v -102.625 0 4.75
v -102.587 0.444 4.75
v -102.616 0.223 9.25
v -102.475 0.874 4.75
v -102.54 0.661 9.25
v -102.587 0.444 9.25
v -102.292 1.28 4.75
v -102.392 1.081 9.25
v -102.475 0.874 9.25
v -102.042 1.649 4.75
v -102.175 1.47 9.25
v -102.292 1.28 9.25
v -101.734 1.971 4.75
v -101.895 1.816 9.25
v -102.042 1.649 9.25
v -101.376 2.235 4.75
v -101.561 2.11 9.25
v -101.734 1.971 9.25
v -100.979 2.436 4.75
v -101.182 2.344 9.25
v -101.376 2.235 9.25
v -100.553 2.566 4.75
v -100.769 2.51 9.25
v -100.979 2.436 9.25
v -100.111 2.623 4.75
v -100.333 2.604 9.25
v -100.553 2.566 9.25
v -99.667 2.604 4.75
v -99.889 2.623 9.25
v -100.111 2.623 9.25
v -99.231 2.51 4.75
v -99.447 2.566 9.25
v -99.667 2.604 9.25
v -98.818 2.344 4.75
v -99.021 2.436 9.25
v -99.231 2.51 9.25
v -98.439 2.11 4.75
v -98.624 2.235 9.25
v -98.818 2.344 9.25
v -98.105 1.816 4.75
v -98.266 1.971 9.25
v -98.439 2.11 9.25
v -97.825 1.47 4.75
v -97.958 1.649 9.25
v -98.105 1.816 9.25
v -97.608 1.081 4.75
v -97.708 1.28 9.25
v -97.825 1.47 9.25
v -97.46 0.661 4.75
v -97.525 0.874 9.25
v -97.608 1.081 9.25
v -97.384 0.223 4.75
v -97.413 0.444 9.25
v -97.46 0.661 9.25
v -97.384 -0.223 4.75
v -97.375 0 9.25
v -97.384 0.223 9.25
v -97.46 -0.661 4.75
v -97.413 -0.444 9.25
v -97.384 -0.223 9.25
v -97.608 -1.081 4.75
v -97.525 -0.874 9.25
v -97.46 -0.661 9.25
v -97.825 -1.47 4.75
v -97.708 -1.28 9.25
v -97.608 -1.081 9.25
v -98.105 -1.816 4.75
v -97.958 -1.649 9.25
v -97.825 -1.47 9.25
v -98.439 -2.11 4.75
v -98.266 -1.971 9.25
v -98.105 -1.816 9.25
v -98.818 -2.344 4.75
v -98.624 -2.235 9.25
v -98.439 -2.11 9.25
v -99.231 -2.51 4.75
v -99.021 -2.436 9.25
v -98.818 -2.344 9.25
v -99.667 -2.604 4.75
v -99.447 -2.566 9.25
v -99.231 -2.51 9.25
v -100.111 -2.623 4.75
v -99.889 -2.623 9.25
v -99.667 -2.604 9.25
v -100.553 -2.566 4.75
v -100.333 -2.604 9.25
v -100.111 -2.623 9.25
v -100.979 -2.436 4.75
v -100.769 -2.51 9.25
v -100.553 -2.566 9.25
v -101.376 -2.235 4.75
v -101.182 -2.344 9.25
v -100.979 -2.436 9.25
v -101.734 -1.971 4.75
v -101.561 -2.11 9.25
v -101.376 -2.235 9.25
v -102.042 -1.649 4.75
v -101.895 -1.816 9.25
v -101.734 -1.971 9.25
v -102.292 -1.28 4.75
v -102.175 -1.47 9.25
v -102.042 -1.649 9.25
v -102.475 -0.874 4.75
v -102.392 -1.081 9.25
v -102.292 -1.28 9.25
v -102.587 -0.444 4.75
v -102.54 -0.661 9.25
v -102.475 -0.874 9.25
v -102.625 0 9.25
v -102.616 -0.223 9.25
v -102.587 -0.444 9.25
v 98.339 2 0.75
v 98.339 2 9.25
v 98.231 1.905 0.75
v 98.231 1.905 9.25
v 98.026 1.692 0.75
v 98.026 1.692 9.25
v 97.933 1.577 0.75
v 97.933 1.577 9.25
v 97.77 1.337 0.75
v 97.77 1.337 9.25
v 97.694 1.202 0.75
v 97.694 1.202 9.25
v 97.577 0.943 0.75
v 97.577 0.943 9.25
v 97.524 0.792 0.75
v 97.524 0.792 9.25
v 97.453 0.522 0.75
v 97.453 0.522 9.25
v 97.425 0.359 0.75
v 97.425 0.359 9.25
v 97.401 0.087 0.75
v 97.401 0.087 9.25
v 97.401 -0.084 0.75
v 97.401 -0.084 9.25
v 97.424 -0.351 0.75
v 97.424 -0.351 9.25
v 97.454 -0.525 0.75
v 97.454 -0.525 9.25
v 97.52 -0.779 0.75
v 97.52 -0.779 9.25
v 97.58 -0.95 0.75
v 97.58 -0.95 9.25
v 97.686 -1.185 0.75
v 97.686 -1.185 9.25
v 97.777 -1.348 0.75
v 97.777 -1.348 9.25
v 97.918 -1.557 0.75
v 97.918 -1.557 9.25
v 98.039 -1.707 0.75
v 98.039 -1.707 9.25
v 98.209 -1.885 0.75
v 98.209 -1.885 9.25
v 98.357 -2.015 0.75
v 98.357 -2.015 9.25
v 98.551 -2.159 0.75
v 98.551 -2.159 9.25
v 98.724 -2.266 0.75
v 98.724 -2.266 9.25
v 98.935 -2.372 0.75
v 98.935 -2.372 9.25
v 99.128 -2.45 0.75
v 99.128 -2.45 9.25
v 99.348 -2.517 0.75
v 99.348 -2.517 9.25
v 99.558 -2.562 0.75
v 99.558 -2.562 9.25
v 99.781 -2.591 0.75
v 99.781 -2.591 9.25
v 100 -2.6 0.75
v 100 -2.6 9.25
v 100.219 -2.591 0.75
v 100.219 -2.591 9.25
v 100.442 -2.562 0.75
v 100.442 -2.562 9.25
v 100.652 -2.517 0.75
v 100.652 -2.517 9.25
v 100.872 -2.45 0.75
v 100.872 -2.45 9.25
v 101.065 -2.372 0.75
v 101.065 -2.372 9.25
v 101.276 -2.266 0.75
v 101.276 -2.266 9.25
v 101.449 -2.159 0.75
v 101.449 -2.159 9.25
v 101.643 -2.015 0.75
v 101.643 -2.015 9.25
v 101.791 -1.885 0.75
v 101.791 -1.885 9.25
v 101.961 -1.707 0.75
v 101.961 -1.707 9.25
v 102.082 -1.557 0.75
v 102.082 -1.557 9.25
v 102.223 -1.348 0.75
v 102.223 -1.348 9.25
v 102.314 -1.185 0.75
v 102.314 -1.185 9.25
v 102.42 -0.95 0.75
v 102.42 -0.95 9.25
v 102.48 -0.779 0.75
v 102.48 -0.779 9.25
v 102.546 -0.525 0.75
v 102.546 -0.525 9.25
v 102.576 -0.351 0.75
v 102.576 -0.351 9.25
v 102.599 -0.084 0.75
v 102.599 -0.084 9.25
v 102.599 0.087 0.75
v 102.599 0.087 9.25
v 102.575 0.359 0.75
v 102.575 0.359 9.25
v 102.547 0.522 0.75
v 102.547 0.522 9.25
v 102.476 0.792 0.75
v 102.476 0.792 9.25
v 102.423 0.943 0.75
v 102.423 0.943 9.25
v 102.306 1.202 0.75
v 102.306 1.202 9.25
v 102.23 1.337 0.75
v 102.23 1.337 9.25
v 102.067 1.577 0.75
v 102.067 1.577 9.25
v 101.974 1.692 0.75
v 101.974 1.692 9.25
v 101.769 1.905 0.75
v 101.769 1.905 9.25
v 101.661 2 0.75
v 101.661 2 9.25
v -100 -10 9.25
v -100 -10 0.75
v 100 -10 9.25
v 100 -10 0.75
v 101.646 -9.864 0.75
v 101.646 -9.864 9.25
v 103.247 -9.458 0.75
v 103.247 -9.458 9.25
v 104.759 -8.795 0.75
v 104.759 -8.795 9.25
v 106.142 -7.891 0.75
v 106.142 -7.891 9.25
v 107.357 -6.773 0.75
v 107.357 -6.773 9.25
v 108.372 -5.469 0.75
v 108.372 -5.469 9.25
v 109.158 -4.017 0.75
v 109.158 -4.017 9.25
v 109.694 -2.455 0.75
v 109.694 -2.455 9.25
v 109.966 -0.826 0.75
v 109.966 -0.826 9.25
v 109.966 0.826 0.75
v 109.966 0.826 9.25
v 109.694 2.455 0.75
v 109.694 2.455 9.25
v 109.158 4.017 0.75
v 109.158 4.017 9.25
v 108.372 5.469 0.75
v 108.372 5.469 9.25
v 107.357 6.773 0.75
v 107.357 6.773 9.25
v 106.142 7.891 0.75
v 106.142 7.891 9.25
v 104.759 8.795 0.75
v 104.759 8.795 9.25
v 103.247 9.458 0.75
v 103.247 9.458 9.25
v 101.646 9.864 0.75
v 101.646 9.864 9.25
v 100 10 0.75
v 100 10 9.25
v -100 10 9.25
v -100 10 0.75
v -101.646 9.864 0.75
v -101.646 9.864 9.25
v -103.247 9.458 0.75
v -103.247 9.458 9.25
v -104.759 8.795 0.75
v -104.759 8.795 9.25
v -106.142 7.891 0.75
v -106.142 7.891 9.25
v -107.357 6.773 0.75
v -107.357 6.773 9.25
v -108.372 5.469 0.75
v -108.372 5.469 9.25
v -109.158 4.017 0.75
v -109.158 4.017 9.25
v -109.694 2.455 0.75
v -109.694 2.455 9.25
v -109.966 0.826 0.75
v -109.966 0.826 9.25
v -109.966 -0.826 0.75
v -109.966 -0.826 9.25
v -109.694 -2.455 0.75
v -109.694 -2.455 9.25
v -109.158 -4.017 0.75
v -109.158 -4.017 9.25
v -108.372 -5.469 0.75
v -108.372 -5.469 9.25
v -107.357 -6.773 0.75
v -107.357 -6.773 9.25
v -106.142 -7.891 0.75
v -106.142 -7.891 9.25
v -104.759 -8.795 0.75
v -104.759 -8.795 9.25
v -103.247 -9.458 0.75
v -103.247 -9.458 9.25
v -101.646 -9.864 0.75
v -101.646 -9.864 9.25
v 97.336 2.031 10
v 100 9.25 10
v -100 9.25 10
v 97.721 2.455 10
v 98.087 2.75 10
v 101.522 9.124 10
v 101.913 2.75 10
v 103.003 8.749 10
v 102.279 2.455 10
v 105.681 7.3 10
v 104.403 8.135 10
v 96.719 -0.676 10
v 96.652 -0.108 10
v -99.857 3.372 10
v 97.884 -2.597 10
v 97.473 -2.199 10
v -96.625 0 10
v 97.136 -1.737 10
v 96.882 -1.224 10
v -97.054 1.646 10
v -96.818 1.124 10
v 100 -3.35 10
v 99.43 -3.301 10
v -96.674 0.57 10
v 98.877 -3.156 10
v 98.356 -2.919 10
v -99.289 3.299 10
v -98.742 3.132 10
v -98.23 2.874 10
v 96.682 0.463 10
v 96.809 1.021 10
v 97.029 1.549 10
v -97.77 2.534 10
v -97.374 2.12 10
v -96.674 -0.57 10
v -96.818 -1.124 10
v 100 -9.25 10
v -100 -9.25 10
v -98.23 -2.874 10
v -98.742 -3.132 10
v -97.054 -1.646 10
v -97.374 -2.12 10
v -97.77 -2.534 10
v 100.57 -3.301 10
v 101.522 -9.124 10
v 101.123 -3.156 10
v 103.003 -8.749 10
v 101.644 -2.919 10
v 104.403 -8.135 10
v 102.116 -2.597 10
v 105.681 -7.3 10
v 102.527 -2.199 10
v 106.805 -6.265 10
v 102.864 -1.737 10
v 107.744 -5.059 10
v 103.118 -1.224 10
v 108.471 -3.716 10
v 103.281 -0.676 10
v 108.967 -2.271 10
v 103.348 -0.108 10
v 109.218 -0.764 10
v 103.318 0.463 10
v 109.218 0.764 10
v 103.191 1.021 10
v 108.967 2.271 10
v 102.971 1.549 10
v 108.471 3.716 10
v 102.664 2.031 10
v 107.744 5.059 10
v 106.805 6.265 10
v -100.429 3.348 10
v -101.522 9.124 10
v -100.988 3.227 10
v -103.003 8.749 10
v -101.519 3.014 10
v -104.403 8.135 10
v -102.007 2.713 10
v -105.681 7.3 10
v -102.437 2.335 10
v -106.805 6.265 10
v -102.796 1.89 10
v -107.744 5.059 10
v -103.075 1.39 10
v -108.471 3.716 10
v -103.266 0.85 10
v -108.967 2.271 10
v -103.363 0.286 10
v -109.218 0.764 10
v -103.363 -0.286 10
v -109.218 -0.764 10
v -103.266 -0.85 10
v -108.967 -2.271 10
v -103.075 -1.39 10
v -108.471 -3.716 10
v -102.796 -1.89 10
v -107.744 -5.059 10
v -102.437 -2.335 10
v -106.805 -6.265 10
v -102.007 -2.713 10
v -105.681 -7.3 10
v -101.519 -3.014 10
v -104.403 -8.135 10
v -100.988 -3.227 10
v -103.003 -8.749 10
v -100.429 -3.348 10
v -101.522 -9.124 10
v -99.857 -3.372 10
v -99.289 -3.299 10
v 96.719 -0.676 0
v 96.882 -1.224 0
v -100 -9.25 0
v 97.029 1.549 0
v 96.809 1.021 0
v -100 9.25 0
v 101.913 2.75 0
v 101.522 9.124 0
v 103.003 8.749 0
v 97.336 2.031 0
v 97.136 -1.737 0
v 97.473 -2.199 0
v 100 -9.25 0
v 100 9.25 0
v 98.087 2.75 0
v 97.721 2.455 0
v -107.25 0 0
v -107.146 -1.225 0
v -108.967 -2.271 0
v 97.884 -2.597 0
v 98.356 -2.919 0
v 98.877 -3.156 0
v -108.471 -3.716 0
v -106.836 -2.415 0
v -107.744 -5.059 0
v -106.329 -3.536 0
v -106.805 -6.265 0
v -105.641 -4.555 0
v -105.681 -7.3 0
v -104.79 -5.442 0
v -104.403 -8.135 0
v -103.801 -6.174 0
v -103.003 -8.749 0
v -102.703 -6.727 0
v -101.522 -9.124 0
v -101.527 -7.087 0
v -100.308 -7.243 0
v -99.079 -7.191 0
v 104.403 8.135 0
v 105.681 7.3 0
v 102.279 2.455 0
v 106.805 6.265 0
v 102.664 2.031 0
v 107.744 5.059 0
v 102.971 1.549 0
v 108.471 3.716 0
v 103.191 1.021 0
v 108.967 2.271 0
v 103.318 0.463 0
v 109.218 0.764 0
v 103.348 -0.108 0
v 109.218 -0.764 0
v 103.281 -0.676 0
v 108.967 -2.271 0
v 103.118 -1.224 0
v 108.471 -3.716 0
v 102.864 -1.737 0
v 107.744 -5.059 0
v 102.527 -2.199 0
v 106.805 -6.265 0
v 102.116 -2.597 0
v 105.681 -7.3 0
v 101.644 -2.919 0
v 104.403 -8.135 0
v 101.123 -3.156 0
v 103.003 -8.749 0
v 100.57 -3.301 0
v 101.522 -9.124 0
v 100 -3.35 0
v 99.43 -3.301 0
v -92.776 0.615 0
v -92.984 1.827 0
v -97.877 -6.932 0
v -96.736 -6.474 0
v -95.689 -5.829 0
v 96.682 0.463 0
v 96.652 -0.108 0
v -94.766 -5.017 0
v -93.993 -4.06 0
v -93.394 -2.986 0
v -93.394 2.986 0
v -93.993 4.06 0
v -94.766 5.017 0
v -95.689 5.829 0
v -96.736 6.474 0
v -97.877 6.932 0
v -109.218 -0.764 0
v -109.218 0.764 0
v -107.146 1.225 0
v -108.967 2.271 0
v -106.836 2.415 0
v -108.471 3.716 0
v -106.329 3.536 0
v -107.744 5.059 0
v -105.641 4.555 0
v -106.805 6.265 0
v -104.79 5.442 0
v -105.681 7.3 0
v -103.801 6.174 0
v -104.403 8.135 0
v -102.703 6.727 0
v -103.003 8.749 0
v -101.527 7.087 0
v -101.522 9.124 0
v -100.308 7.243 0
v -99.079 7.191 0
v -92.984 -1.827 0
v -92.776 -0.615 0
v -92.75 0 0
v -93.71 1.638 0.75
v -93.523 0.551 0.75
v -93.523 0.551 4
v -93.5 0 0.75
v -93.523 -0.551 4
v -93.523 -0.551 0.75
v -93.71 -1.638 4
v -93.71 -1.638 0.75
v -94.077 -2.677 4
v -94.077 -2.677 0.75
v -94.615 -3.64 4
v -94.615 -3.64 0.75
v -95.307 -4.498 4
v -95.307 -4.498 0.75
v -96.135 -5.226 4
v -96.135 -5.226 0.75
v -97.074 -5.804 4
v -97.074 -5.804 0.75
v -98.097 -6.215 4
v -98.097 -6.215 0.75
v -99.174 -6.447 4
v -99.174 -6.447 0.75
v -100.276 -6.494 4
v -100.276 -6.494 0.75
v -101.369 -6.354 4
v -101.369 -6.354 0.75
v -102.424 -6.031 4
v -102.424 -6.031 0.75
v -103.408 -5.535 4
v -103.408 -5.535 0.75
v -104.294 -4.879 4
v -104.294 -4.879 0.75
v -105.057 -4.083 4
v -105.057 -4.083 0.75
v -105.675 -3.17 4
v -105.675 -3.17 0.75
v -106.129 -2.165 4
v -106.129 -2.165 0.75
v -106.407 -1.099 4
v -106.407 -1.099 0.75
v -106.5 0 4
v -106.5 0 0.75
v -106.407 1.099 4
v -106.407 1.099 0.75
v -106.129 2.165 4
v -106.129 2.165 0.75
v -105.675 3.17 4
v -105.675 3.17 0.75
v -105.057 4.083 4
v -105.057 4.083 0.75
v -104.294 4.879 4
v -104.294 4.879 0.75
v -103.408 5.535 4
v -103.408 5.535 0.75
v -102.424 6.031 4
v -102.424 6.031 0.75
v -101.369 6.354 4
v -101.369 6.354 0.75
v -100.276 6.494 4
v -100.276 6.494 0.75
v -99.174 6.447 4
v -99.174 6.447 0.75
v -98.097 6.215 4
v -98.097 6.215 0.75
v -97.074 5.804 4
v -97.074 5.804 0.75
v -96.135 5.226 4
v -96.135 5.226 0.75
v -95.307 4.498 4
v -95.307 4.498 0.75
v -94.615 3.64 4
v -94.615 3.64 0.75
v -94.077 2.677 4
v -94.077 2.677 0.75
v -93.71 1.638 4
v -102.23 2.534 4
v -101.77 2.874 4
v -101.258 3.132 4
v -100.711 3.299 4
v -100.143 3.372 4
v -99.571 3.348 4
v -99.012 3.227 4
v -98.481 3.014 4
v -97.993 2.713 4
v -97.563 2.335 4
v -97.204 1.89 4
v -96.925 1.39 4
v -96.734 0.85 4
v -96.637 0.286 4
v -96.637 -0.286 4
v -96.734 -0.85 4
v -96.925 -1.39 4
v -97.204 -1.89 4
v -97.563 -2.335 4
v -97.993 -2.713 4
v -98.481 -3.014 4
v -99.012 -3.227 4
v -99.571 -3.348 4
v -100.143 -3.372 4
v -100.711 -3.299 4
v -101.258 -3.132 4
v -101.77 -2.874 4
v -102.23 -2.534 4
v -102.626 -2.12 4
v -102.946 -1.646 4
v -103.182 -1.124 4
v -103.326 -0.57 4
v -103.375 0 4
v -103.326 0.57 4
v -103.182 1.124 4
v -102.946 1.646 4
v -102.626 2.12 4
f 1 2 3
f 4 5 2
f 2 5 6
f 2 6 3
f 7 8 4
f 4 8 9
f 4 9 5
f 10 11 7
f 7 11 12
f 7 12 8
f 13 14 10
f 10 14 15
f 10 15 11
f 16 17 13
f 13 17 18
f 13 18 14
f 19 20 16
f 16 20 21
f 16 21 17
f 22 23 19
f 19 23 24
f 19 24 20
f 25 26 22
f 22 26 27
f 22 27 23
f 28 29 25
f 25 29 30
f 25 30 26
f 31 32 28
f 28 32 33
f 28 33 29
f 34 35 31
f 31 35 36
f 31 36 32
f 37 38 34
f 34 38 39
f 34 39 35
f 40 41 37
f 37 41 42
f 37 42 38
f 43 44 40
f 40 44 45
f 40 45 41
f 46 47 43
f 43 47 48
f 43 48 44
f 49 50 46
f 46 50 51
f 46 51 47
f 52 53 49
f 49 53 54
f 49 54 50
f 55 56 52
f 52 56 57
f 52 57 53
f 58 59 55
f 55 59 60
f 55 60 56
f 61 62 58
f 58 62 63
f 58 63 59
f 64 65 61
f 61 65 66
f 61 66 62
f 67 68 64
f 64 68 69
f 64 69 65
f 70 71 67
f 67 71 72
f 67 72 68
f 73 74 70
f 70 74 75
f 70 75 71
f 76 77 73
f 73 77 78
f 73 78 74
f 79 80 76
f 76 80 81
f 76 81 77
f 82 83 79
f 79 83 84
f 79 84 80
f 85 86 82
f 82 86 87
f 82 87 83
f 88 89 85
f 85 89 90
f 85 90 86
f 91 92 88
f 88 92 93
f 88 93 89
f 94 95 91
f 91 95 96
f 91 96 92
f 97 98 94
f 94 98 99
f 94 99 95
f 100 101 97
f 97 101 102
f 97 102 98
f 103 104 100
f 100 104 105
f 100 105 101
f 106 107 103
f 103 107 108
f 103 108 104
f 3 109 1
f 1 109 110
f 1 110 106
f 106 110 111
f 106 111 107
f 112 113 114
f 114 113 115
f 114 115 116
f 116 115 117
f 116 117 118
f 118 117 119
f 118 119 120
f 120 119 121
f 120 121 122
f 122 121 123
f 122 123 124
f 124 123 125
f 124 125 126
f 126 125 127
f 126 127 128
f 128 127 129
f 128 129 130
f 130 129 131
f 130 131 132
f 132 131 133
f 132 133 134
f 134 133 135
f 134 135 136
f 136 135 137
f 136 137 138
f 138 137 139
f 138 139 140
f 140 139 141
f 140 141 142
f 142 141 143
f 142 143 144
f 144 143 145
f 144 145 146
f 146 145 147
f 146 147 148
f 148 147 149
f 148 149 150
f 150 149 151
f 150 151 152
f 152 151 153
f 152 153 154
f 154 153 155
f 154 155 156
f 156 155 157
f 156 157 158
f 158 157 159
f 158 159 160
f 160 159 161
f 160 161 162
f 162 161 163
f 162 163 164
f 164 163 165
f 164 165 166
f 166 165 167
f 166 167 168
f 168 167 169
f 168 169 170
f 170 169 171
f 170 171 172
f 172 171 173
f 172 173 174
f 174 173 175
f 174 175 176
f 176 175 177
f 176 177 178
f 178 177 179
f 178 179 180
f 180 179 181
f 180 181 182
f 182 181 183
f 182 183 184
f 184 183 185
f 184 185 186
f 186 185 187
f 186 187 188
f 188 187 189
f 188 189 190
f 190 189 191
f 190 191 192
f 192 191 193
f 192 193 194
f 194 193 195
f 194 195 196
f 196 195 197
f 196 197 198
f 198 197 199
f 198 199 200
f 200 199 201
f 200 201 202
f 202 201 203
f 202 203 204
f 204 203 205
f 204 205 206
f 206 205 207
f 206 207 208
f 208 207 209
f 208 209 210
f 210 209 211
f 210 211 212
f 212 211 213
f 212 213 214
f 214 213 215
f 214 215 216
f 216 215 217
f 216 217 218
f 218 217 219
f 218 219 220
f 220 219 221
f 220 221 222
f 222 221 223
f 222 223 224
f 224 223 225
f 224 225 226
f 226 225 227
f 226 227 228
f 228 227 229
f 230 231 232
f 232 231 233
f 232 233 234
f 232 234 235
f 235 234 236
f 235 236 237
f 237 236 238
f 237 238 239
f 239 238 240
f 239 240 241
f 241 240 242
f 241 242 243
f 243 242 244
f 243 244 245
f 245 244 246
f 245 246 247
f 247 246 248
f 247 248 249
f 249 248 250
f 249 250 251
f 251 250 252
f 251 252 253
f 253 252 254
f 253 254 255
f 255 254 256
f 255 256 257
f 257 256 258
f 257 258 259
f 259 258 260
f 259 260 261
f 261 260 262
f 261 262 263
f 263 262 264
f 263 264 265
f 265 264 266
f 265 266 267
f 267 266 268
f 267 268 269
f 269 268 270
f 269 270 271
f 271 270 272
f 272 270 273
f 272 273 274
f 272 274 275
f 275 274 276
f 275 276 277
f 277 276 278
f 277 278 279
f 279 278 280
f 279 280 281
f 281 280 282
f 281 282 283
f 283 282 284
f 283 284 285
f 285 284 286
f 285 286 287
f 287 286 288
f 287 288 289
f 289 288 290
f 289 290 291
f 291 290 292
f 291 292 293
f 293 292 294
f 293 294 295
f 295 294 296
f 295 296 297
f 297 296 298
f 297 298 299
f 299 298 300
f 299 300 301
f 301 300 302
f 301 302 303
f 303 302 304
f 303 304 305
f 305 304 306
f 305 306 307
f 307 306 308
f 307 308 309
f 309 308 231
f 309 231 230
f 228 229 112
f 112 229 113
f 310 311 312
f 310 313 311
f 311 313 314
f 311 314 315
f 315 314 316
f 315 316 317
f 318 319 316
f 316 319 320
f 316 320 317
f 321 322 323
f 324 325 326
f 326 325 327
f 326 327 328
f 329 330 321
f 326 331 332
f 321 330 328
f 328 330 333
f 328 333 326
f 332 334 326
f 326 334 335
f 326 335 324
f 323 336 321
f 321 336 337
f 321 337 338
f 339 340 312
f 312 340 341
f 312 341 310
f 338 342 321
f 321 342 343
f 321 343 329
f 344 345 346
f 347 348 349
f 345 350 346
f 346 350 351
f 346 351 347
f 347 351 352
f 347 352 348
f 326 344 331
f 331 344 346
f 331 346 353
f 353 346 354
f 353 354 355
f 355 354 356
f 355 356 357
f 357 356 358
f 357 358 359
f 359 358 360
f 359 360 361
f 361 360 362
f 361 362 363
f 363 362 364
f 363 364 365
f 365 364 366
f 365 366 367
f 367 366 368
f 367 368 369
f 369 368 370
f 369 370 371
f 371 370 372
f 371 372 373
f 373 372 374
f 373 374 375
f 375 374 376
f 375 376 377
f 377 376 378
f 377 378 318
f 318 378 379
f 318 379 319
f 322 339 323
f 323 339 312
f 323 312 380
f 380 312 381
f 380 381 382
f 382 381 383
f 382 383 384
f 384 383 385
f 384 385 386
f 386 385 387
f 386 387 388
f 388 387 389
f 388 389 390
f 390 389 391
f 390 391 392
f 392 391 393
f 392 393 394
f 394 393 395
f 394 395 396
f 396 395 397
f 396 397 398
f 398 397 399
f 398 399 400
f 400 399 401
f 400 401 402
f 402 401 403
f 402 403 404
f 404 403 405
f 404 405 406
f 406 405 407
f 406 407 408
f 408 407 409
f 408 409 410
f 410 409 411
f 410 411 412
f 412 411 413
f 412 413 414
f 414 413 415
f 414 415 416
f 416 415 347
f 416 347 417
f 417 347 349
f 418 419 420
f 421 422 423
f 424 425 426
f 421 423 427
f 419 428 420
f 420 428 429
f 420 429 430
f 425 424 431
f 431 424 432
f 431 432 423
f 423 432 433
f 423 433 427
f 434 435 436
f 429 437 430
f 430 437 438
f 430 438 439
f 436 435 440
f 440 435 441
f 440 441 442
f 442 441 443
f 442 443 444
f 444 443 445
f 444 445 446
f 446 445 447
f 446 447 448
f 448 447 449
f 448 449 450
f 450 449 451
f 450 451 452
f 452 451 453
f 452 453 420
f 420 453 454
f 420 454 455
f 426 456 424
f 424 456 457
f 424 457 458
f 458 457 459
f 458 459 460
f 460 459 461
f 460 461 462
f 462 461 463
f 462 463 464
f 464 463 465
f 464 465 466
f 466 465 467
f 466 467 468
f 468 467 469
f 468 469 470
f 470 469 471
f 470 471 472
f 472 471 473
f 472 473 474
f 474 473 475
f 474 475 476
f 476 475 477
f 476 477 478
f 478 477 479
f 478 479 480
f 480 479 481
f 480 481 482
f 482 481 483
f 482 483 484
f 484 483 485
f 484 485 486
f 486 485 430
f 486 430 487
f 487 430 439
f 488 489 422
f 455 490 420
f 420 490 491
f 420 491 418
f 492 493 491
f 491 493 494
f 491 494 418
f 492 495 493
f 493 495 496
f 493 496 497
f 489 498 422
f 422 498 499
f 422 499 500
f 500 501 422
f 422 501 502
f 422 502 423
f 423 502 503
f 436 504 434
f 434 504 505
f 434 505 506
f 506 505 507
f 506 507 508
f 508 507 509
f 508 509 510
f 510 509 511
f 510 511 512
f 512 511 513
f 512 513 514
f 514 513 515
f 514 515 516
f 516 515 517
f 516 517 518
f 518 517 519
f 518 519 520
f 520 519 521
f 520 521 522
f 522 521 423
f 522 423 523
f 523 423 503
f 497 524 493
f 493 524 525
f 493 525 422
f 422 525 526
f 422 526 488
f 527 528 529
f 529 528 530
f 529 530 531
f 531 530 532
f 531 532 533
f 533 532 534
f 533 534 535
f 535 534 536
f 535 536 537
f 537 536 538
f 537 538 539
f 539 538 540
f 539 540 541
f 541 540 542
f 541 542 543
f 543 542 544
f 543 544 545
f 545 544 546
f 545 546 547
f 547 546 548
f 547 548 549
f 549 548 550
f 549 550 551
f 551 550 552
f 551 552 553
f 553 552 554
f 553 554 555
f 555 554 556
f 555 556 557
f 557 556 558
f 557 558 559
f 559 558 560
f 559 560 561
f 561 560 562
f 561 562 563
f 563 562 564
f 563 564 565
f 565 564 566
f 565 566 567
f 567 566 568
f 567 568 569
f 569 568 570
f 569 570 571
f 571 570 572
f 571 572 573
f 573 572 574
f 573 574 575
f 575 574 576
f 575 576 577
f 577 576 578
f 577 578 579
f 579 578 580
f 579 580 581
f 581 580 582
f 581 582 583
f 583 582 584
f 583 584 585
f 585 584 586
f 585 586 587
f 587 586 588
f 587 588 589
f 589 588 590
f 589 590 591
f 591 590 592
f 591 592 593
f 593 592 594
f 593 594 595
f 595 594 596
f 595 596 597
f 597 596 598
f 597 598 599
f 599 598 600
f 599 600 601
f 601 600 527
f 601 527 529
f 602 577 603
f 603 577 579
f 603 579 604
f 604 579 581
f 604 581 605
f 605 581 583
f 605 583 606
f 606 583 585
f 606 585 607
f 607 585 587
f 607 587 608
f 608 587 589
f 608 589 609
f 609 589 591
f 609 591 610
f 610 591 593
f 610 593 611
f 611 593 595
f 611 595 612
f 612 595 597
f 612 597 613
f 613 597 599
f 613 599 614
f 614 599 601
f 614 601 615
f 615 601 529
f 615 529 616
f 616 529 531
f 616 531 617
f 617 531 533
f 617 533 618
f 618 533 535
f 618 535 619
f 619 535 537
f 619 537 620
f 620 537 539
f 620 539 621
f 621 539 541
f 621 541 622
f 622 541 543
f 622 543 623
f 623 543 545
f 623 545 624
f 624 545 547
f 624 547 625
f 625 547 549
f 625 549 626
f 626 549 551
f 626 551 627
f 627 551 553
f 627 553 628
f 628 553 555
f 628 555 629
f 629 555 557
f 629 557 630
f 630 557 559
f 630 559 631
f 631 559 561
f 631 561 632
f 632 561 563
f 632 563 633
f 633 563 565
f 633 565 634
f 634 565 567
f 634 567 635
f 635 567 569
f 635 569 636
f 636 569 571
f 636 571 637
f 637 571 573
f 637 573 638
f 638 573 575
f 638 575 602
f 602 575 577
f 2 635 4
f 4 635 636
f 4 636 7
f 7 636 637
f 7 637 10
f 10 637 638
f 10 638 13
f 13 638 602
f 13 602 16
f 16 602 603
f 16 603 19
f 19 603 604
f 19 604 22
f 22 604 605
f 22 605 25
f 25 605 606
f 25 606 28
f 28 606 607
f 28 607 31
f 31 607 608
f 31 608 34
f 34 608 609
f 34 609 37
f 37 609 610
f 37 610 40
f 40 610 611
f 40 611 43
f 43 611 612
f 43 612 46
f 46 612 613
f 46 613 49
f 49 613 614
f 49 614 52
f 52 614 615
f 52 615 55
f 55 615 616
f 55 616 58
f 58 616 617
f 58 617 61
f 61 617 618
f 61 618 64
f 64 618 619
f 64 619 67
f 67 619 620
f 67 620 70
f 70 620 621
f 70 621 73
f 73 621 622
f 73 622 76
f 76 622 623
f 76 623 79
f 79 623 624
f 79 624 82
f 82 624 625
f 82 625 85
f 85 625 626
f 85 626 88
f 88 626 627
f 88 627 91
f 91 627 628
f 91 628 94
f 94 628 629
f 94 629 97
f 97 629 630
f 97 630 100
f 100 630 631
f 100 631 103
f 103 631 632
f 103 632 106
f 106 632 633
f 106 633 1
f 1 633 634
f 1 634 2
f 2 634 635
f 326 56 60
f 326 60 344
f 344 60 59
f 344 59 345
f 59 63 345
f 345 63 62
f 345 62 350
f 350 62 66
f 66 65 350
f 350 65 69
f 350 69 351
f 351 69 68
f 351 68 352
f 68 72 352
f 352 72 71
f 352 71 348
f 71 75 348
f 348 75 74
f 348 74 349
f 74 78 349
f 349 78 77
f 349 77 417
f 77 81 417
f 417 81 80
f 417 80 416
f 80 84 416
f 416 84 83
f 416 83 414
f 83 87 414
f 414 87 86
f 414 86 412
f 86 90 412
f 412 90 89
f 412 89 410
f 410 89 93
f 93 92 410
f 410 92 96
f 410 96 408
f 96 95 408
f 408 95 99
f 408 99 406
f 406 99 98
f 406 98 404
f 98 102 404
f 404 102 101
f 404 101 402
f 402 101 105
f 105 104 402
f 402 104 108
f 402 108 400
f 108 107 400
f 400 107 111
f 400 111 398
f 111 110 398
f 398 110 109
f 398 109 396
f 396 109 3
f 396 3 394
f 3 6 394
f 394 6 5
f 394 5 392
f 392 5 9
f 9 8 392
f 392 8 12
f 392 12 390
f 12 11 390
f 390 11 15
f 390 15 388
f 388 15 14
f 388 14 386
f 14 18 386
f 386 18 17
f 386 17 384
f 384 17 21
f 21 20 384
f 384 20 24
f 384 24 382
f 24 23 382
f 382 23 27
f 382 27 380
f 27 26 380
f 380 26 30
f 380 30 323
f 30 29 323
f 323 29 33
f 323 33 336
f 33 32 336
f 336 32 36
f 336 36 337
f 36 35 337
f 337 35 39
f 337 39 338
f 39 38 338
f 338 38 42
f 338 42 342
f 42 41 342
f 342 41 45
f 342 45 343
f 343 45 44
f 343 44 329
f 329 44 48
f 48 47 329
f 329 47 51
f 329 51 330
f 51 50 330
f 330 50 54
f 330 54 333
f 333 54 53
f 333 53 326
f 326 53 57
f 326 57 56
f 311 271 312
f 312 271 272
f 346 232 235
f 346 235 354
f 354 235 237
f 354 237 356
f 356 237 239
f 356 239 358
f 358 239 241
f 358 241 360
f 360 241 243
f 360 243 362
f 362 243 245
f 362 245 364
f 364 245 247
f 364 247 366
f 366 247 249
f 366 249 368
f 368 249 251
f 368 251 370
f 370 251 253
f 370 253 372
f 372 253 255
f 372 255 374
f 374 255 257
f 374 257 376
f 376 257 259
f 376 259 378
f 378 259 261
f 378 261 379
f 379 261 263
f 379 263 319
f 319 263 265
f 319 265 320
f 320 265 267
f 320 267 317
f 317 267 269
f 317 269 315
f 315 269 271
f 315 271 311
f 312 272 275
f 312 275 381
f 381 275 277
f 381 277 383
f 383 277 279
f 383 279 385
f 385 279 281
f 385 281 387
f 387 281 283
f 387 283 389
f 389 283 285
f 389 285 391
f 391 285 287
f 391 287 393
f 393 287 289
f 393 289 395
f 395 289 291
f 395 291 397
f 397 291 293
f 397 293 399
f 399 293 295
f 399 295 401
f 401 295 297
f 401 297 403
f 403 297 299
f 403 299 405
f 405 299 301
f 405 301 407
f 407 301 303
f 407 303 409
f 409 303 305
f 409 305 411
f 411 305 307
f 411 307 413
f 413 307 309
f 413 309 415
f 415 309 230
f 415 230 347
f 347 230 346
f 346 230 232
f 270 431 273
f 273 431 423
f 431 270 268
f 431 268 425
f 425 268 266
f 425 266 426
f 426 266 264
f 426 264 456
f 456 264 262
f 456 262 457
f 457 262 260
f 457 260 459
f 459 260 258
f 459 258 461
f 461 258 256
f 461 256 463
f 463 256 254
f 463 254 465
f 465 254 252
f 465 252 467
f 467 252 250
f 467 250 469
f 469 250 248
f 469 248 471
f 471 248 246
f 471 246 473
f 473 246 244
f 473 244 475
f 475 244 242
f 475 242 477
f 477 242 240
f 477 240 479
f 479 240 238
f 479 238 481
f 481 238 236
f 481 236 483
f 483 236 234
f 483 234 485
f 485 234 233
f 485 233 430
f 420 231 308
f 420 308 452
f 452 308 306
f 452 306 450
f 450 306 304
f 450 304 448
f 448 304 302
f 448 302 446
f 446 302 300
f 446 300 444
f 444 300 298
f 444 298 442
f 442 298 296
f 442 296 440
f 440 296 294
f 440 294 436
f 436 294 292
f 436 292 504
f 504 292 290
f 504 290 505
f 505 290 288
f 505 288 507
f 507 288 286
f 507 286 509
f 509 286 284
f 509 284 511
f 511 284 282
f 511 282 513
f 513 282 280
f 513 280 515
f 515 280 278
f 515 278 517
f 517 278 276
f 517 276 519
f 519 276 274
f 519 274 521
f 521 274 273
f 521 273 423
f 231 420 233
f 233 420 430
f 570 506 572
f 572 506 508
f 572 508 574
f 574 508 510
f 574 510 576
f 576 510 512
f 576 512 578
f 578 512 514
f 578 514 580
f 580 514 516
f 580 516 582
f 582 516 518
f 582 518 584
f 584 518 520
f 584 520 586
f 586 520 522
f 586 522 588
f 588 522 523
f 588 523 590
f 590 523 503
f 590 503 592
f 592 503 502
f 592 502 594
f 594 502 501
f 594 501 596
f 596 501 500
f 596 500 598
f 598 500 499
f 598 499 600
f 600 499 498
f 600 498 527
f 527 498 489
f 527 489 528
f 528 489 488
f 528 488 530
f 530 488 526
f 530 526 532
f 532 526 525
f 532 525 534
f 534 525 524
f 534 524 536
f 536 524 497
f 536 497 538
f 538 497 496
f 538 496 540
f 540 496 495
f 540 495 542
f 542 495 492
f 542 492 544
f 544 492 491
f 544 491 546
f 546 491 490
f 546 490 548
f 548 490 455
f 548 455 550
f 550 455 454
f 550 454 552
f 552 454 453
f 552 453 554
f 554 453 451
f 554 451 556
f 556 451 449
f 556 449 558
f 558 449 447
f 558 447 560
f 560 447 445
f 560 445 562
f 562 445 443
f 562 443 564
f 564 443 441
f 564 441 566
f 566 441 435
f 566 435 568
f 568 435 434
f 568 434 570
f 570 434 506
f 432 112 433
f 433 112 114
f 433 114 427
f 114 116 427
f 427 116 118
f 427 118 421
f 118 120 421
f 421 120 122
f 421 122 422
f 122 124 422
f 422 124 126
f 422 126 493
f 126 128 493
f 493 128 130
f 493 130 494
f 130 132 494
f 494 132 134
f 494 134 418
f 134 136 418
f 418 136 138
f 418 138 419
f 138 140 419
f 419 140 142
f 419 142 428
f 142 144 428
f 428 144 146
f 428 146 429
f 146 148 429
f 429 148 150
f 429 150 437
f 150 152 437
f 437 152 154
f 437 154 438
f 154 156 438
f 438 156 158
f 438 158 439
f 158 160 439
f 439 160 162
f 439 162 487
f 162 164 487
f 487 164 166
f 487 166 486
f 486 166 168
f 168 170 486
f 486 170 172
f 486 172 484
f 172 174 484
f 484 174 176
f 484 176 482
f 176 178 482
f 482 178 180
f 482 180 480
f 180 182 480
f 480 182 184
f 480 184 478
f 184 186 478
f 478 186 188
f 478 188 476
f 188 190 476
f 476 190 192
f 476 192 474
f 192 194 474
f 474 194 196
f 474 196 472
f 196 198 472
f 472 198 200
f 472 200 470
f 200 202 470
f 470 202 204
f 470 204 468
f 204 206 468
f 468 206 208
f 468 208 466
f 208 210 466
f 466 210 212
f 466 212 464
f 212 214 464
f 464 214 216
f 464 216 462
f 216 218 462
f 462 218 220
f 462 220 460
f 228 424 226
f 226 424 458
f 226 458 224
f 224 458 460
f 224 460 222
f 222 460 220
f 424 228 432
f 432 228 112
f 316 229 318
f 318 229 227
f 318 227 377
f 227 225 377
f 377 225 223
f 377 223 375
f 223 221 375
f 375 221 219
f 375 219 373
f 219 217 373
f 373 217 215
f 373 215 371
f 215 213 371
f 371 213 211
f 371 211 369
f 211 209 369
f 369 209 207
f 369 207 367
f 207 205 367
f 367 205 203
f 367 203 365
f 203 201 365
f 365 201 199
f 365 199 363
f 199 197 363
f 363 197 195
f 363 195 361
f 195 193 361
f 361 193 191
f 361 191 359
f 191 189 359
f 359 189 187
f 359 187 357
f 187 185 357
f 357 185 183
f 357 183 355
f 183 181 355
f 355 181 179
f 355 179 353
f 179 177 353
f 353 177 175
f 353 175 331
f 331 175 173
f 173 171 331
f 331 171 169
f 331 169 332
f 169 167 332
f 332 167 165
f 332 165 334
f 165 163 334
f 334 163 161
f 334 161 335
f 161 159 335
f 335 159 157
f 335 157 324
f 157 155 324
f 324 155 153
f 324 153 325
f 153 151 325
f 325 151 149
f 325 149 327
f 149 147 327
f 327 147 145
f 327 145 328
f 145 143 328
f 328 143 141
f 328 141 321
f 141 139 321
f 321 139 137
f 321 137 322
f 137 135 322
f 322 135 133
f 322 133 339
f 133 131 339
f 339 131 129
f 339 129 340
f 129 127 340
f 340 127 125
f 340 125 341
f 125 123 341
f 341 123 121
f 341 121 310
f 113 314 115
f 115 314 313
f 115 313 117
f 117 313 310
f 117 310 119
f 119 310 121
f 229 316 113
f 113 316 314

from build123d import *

# Parameters (mm, degrees)
SKETCH1_R           = 2.625
BOSS_EXTRUDE1_DEPTH = 10
SKETCH2_R           = 6.5
CUT_EXTRUDE1_DEPTH  = 4
CHAMFER1_SIZE       = 0.75


with BuildPart() as part:
    # Sketch1 → Boss-Extrude1 (new body)
    with BuildSketch(Plane.XY):
        with BuildLine():
            Line((100, 10), (-100, 10))
            ThreePointArc((-100, 10), (-110, 0), (-100, -10))
            Line((-100, -10), (100, -10))
            ThreePointArc((100, -10), (110, 0), (100, 10))
        make_face()
        with Locations((-100, 0)):
            Circle(SKETCH1_R, mode=Mode.SUBTRACT)
        with BuildLine():
            Line((98.338675227, 2), (101.661324773, 2))
            ThreePointArc((101.661324773, 2), (100, -2.6), (98.338675227, 2))
        make_face(mode=Mode.SUBTRACT)
    extrude(amount=BOSS_EXTRUDE1_DEPTH)

    # Sketch2 → Cut-Extrude1 (cut)
    with BuildSketch(Plane(origin=(0, 0, 0), x_dir=(-1, 0, 0), z_dir=(0, 0, -1))):
        with Locations((100, 0)):
            Circle(SKETCH2_R)
    extrude(amount=-CUT_EXTRUDE1_DEPTH, mode=Mode.SUBTRACT)

    # Chamfer1
    chamfer1_edges = [part.edges().sort_by_distance(p)[0] for p in [
        (-110, 0, 0),
        (0, 10, 0),
        (110, 0, 0),
        (110, 0, 10),
        (0, -10, 0),
        (0, 10, 10),
        (-110, 0, 10),
        (-102.625, 0, 4),
        (-93.5, 0, 0),
        (-102.625, 0, 10),
        (100, -2.6, 10),
        (100, 2, 10),
        (0, -10, 10),
        (100, 2, 0),
        (100, -2.6, 0),
    ]]
    chamfer(chamfer1_edges, length=CHAMFER1_SIZE)


solid = part.part
